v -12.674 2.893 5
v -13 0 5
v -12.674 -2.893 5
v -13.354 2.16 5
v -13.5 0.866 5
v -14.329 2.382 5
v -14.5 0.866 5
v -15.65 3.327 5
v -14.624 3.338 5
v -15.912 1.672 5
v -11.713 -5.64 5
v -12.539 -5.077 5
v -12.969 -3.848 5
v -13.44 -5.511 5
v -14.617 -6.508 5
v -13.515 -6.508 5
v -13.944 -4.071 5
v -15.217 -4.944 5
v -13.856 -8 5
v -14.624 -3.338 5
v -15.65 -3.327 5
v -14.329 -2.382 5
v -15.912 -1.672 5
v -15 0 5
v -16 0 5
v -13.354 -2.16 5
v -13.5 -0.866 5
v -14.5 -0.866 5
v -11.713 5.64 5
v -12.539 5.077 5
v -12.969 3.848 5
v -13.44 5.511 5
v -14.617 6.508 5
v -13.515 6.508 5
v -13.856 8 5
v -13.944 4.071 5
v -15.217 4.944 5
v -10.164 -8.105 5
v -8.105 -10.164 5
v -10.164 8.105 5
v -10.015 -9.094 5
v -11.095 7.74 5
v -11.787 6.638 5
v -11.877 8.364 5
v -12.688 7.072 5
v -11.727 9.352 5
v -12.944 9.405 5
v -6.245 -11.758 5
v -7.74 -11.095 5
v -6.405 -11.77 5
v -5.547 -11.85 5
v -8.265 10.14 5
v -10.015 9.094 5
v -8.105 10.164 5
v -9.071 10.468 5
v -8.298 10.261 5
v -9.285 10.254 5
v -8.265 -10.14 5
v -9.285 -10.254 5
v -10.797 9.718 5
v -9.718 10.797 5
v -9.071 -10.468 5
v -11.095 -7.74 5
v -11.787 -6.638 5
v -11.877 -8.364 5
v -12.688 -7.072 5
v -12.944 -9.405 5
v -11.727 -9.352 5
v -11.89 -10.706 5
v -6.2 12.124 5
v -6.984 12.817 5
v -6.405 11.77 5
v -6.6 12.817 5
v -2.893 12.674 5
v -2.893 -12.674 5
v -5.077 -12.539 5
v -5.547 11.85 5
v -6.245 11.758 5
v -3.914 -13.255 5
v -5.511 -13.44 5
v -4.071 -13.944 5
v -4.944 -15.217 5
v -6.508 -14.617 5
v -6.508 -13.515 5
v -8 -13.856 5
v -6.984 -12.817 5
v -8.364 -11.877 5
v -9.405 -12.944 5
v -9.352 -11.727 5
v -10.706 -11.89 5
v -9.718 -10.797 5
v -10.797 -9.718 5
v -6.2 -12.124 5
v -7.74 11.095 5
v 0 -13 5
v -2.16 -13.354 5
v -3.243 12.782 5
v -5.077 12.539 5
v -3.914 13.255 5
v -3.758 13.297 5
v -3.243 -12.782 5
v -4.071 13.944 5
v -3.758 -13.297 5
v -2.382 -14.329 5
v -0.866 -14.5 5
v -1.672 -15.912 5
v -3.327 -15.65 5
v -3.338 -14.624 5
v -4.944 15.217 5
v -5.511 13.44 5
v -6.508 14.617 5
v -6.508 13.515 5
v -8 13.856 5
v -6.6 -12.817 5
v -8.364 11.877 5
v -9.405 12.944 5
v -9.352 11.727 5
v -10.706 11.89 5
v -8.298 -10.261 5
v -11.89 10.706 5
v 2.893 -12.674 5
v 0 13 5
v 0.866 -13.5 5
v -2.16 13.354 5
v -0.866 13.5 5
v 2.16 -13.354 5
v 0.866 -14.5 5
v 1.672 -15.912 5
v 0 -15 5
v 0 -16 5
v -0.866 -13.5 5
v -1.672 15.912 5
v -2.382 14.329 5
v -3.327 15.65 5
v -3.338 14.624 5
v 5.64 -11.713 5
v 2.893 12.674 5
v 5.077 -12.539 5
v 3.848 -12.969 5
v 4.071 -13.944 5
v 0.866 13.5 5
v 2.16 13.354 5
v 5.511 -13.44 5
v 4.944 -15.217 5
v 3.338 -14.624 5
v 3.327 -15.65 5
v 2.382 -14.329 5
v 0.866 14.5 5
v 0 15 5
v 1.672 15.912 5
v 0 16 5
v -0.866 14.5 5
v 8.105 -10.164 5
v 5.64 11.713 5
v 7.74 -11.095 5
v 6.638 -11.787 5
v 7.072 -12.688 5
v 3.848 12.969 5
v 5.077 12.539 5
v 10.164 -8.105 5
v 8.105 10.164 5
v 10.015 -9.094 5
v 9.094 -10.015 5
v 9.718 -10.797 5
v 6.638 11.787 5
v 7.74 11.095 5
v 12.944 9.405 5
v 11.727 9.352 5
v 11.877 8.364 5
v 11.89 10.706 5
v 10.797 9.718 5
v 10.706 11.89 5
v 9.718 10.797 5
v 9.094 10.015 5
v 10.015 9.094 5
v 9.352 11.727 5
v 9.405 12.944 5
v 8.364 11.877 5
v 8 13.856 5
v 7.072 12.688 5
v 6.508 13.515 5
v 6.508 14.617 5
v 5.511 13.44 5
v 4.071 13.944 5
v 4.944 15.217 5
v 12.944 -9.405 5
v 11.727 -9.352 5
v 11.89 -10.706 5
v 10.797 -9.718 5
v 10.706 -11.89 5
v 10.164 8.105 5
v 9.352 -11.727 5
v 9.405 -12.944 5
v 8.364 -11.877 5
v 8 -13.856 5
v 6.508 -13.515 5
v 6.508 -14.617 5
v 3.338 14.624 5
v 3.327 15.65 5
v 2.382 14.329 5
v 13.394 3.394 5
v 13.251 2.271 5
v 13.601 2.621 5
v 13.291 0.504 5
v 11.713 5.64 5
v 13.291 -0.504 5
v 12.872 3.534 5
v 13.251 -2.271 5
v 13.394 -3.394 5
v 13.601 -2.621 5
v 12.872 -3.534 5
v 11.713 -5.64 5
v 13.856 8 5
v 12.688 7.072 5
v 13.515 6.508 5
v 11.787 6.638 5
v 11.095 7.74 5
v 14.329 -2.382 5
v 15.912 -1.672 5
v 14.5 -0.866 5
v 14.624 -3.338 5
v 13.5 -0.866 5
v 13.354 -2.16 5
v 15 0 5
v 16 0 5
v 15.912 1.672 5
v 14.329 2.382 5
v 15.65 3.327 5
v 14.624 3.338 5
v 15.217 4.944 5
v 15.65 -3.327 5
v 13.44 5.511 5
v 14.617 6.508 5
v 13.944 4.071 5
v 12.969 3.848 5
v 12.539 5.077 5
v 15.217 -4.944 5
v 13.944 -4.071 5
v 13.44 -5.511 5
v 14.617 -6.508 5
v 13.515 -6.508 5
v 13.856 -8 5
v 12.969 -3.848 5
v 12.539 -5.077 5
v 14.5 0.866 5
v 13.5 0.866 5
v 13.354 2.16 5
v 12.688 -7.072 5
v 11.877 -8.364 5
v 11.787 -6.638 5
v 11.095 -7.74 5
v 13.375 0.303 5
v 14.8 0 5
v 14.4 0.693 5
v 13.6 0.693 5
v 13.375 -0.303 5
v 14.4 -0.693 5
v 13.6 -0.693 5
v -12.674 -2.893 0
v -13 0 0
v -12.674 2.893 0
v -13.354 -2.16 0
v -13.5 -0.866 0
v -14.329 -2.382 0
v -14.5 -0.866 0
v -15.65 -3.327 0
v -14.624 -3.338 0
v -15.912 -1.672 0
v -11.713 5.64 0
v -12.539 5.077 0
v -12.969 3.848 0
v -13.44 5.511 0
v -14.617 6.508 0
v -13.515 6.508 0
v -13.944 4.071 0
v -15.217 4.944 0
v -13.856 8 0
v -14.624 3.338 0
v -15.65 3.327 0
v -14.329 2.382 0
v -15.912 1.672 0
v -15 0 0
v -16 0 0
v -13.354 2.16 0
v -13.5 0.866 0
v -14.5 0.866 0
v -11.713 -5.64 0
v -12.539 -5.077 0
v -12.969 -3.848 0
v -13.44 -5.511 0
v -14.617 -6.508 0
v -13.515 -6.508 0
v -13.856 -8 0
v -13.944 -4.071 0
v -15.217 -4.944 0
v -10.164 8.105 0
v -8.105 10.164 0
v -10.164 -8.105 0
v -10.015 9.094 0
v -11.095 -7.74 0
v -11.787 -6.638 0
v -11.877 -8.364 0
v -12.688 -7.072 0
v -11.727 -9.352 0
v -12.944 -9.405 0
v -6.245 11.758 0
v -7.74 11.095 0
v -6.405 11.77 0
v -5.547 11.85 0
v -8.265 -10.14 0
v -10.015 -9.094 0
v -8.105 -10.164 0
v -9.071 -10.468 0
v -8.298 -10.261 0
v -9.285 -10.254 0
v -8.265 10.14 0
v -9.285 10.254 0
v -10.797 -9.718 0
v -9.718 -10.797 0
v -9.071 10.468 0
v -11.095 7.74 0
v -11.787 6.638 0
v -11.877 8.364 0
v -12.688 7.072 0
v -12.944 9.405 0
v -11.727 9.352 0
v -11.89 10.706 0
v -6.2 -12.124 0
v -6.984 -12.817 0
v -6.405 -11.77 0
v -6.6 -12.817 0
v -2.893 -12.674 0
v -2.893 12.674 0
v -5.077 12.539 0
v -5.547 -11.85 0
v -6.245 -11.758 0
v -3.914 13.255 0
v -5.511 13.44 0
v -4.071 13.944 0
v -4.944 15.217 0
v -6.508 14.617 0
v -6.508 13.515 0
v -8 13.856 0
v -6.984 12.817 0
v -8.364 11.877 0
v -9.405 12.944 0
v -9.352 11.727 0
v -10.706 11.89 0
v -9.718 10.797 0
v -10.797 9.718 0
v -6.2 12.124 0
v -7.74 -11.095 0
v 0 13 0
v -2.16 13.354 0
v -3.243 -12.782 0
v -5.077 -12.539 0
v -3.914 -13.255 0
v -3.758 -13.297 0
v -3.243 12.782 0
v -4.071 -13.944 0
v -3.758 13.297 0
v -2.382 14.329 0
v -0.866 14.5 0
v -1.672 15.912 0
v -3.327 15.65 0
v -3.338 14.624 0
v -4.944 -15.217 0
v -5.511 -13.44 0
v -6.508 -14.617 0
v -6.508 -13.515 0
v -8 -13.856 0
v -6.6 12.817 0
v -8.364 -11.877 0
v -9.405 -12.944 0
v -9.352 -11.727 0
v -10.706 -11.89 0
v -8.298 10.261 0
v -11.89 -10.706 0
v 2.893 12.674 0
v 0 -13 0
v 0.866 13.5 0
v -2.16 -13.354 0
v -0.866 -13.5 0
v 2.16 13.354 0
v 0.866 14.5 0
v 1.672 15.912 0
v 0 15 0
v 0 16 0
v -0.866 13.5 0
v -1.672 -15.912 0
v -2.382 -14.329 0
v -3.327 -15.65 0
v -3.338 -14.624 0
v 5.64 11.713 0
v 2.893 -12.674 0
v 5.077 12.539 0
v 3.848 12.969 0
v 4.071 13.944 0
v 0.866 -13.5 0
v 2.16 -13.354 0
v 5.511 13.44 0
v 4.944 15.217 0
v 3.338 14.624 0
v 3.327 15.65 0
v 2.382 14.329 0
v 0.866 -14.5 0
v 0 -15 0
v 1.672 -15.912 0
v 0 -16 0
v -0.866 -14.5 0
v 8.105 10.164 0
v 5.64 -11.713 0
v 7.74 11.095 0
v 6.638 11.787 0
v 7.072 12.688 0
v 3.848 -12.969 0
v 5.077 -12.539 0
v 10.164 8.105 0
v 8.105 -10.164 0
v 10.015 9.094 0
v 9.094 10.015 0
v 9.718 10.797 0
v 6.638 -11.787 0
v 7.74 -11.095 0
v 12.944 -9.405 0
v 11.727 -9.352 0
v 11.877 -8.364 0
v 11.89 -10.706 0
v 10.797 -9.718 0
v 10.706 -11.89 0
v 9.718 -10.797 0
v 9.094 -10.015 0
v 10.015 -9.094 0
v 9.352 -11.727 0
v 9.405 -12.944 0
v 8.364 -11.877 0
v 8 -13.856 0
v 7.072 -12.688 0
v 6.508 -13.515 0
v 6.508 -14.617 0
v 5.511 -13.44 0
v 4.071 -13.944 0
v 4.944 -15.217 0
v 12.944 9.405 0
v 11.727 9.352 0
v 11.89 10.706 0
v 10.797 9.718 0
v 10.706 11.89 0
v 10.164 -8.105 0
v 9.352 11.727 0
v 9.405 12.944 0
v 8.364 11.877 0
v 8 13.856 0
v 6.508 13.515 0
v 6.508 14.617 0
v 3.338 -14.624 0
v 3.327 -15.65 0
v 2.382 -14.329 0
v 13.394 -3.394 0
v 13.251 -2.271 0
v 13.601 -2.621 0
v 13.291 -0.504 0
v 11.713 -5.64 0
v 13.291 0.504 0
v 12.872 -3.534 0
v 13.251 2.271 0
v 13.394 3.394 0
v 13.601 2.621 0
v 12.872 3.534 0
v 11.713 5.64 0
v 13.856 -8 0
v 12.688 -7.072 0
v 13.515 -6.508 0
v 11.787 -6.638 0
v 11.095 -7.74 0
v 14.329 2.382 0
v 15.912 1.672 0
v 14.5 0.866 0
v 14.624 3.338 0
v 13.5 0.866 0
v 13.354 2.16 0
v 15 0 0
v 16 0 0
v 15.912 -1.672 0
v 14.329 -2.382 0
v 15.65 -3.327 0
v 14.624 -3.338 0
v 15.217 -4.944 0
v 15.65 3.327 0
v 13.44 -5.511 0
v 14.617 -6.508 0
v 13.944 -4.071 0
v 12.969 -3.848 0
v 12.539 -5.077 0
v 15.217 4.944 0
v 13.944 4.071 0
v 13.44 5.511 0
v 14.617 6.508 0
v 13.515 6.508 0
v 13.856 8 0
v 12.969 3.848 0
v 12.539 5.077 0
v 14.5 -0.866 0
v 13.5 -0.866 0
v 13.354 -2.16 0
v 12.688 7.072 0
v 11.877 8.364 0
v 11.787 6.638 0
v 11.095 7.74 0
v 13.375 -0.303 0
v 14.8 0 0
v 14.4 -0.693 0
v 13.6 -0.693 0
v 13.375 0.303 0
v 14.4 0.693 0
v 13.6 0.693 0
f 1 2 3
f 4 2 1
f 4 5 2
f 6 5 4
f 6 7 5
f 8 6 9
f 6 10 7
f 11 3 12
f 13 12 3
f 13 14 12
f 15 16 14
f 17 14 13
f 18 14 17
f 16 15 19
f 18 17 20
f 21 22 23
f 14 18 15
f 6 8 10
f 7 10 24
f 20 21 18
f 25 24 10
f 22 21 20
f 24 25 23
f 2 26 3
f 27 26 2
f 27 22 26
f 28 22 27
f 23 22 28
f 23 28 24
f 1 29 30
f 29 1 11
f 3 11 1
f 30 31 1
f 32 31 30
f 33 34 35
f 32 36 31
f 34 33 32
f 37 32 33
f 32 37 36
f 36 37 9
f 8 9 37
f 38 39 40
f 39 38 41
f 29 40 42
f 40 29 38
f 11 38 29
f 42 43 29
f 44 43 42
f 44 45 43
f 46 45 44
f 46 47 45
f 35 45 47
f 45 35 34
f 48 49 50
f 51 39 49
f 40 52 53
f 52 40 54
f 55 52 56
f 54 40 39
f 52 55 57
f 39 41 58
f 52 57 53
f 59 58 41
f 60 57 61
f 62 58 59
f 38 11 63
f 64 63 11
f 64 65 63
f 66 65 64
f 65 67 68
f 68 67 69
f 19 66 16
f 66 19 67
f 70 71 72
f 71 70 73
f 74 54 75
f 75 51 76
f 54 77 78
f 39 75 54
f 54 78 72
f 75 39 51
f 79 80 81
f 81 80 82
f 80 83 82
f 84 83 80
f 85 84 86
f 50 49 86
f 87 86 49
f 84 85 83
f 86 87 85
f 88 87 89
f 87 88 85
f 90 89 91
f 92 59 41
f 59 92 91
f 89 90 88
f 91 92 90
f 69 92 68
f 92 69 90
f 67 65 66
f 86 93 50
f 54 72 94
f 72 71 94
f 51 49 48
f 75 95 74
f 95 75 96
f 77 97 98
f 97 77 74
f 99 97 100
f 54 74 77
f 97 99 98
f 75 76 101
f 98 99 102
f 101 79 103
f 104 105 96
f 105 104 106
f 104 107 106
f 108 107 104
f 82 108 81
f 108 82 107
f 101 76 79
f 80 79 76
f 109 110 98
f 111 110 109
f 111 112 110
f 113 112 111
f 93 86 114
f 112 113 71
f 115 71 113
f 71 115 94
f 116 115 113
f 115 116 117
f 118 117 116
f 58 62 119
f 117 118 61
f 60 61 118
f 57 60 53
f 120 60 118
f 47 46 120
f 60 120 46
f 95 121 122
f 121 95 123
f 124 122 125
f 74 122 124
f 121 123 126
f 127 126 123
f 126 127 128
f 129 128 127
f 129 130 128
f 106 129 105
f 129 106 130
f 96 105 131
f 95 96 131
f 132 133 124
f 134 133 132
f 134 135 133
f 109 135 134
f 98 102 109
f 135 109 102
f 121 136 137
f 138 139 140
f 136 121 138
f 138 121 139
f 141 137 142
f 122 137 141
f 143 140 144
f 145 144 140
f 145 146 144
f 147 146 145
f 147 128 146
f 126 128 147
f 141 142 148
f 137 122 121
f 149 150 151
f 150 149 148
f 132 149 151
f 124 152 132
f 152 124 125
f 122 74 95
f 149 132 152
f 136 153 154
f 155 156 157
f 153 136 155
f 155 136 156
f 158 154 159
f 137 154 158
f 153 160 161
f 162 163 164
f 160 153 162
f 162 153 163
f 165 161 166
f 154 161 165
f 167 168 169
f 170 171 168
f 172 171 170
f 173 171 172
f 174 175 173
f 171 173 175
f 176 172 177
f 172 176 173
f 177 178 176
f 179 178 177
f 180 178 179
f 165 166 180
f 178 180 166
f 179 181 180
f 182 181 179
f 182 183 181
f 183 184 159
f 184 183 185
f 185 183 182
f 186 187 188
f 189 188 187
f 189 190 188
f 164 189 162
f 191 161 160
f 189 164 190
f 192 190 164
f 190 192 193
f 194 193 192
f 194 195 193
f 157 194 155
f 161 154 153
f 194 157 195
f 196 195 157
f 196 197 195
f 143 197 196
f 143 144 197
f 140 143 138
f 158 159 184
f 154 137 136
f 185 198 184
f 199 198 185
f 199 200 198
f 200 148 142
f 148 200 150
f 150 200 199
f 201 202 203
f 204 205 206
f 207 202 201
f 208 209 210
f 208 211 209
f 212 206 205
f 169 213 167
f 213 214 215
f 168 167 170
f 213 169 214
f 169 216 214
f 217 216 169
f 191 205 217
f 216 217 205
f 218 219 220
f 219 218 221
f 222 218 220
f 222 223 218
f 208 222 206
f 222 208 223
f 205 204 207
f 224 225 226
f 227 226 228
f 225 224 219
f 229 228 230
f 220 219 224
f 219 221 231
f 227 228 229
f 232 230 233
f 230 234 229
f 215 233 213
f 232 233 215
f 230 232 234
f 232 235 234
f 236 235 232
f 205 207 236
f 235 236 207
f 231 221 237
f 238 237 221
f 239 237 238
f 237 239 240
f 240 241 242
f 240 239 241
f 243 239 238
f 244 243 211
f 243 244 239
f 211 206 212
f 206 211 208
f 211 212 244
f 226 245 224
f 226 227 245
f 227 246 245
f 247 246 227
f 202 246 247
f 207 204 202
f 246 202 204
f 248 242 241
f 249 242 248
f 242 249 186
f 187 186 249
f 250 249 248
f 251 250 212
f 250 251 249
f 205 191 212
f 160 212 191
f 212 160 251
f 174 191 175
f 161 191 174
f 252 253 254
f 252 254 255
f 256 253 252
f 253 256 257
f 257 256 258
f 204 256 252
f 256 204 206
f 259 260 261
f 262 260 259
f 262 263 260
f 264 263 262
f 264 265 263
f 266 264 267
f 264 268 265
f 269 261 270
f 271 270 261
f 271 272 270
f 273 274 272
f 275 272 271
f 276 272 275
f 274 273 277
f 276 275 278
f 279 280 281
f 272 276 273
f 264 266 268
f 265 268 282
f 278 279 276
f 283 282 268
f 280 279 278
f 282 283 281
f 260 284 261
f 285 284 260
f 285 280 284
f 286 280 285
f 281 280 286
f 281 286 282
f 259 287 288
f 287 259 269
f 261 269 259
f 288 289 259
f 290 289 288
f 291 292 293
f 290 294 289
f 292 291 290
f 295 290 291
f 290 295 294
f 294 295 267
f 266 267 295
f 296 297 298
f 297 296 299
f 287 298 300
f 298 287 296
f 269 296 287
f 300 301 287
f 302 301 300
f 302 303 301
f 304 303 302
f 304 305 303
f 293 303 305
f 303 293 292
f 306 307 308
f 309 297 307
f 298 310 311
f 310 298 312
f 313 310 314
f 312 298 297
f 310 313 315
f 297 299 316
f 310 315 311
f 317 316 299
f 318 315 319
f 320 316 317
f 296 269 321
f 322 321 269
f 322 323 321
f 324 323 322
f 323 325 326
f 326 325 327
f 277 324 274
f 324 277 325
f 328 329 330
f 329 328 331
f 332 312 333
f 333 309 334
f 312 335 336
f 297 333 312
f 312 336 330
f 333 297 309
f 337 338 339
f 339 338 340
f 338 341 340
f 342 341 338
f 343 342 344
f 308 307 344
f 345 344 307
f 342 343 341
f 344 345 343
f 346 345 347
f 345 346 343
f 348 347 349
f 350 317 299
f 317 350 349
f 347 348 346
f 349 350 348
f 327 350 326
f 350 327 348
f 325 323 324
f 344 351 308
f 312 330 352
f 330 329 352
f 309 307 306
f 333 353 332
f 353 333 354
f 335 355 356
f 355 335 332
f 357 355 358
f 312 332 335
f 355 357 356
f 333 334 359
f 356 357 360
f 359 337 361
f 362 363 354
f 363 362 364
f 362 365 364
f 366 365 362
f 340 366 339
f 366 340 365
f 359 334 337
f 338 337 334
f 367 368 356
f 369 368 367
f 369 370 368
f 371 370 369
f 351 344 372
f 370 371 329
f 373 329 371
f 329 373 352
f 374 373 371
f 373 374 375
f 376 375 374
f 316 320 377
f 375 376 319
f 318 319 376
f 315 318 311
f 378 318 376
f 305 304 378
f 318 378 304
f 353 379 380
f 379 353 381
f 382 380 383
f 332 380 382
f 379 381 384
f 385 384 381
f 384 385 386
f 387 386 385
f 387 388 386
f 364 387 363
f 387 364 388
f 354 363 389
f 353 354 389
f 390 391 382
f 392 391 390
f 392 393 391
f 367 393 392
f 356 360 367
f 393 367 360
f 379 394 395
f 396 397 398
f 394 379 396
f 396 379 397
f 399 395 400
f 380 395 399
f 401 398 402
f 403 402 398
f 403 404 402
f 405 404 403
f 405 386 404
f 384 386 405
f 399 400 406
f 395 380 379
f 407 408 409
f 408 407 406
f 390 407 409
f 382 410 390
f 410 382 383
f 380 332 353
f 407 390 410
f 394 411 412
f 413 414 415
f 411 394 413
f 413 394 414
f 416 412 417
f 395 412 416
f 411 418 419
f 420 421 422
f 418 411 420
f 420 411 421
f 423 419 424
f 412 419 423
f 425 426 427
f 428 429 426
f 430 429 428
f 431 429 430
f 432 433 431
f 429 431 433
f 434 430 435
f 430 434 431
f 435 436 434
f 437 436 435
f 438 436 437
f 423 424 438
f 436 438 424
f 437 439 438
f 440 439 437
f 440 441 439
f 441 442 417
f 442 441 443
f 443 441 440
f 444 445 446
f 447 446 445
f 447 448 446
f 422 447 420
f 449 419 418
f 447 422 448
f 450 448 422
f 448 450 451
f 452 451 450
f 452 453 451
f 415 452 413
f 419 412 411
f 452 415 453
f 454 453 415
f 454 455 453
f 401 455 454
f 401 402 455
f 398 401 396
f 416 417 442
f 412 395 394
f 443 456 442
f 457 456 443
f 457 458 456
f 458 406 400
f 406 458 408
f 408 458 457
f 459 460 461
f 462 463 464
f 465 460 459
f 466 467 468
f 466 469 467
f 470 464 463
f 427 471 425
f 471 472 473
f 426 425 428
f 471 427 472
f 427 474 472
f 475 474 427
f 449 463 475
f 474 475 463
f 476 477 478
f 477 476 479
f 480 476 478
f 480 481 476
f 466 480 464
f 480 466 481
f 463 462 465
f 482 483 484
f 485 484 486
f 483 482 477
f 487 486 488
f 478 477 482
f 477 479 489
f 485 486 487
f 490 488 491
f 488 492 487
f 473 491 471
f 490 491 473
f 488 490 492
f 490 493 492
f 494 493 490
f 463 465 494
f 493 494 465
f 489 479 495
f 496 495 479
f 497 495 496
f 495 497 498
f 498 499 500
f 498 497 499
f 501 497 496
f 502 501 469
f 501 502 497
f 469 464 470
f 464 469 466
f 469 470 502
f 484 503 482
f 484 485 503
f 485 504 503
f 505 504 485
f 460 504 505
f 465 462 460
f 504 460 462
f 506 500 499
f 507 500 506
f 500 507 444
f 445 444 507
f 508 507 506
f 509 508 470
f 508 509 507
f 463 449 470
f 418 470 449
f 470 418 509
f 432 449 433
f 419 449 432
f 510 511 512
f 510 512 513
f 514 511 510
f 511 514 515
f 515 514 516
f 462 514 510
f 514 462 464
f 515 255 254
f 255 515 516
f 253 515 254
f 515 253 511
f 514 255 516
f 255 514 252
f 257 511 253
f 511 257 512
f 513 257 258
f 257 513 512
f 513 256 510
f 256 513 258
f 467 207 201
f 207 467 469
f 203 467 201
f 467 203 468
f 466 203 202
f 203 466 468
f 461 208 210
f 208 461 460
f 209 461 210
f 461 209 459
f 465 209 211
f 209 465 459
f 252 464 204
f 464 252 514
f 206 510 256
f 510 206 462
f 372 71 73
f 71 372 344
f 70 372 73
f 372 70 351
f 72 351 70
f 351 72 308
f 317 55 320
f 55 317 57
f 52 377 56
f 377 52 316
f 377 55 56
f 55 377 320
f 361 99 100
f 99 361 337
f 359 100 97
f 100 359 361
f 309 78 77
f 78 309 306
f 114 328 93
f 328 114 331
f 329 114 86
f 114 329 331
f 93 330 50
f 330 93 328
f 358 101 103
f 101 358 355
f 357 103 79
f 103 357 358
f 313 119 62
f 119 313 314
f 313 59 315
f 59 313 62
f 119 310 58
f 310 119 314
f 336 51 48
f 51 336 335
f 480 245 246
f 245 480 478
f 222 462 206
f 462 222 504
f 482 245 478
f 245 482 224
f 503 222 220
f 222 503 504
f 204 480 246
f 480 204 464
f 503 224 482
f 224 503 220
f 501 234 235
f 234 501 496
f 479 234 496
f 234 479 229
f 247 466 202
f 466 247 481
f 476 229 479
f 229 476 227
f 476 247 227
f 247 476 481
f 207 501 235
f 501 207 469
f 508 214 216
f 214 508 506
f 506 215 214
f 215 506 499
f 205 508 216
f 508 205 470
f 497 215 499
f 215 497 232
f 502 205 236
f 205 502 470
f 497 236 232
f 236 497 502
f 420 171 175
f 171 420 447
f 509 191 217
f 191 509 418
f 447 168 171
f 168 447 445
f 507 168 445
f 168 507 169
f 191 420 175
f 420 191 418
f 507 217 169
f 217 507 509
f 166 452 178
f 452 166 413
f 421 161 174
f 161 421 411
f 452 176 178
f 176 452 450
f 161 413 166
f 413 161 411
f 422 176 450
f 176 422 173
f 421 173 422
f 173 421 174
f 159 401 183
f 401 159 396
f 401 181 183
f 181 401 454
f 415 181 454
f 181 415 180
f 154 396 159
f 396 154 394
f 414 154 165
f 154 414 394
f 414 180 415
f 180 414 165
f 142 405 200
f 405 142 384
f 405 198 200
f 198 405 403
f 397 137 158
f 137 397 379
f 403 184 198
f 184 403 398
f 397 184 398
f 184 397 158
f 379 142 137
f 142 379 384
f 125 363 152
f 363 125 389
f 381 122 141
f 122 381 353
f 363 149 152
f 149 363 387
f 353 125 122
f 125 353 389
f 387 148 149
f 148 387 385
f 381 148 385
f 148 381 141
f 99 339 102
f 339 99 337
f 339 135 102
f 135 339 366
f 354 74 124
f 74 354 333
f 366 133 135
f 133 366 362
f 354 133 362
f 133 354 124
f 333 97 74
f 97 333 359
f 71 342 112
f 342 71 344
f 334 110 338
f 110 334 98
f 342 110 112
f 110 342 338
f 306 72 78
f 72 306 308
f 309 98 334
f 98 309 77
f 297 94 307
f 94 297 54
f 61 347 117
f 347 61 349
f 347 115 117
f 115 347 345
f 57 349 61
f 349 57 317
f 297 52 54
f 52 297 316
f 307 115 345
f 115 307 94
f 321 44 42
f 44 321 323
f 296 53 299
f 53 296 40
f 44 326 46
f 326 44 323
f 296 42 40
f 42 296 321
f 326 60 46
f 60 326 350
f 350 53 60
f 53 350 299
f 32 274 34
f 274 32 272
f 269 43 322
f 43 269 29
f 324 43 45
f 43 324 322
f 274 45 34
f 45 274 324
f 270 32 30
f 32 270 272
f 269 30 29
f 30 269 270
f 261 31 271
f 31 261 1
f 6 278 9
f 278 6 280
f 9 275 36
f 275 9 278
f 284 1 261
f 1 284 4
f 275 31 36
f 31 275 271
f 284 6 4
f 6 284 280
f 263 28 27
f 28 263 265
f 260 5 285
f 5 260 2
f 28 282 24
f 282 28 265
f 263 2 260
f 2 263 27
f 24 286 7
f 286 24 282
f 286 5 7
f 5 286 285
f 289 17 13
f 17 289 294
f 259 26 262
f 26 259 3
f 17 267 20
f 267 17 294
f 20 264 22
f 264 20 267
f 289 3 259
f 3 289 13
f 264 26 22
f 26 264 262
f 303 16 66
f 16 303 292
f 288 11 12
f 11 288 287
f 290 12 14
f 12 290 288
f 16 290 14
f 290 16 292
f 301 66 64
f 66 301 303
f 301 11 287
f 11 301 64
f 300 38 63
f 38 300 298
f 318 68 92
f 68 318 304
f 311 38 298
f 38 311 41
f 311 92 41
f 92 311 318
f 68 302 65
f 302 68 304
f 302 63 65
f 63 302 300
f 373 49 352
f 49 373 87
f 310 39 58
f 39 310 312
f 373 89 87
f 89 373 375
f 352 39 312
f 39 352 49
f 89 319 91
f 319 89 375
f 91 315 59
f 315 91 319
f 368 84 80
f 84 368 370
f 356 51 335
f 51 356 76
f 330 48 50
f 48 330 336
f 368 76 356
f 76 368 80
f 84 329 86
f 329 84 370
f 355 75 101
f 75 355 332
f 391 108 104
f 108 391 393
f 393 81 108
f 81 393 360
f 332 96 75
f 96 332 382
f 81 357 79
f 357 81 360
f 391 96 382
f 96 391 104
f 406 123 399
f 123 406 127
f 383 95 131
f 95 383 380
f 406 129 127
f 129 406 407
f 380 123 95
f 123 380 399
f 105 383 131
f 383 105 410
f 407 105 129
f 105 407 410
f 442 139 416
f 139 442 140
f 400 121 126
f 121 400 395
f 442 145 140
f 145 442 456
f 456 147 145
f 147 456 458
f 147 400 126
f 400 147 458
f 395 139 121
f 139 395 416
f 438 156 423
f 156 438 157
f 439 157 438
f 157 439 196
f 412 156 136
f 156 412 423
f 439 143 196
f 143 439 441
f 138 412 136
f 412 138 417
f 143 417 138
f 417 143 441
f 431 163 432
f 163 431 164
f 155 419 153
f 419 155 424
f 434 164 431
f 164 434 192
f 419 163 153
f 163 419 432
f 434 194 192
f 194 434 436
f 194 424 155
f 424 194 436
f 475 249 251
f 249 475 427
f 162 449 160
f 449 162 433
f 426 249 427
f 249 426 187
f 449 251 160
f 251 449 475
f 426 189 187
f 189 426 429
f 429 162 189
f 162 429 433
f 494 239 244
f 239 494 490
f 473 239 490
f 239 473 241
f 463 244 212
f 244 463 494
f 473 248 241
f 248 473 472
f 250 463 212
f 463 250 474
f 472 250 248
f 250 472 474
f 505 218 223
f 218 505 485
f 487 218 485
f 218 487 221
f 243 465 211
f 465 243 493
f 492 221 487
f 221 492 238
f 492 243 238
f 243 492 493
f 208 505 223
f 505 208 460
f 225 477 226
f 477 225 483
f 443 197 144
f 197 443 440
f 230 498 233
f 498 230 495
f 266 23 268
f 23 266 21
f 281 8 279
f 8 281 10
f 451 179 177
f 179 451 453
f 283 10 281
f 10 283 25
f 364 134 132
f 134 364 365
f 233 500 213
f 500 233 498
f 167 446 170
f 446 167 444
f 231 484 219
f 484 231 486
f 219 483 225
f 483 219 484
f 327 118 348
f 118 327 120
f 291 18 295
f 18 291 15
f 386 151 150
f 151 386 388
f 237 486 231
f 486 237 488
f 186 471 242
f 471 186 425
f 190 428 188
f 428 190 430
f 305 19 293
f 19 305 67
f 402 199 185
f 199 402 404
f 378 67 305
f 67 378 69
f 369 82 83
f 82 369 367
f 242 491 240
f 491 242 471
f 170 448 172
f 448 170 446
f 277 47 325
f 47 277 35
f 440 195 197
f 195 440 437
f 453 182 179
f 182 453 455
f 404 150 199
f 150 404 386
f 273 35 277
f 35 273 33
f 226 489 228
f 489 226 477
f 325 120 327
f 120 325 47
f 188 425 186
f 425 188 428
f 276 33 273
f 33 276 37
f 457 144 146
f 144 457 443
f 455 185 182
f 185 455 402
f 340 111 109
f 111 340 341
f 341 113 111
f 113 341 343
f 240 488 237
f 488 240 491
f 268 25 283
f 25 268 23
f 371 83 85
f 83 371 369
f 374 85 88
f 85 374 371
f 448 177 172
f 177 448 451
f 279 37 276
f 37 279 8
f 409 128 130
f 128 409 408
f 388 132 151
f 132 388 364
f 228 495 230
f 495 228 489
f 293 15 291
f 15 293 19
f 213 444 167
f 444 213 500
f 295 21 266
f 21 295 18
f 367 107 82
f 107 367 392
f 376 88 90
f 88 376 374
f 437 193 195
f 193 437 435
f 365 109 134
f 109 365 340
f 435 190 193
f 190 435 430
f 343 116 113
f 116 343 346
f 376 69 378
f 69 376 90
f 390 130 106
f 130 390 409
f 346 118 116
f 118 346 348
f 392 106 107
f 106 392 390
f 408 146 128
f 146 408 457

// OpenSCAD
// Compound planetary gear system
module ring_gear(teeth, module_size, thickness) {
    pitch_radius = teeth * module_size / 2;
    
    difference() {
        cylinder(h = thickness, r = pitch_radius + module_size * 2, $fn = 60);
        
        // Inner gear teeth
        for (i = [0:teeth-1]) {
            rotate([0, 0, i * 360 / teeth])
                translate([pitch_radius, 0, -1])
                cylinder(h = thickness + 2, r = module_size, $fn = 6);
        }
    }
}

module planet_gear(teeth, module_size, thickness) {
    pitch_radius = teeth * module_size / 2;
    
    difference() {
        union() {
            cylinder(h = thickness, r = pitch_radius - module_size/2, $fn = teeth);
            
            for (i = [0:teeth-1]) {
                rotate([0, 0, i * 360 / teeth])
                    translate([pitch_radius, 0, 0])
                    cylinder(h = thickness, r = module_size * 0.8, $fn = 6);
            }
        }
        
        cylinder(h = thickness + 1, r = 2, center = true, $fn = 20);
    }
}

// System parameters
sun_teeth = 12;
planet_teeth = 8;
ring_teeth = sun_teeth + 2 * planet_teeth;
module_size = 1;
thickness = 5;

// Sun gear (center)
rotate([0, 0, $t * 360])
    planet_gear(sun_teeth, module_size, thickness);

// Planet gears
for (i = [0:2]) {
    rotate([0, 0, i * 120 + $t * 120])
        translate([(sun_teeth + planet_teeth) * module_size / 2, 0, 0])
        rotate([0, 0, -$t * 360 * (ring_teeth / planet_teeth)])
        planet_gear(planet_teeth, module_size, thickness);
}

// Ring gear
ring_gear(ring_teeth, module_size, thickness);
